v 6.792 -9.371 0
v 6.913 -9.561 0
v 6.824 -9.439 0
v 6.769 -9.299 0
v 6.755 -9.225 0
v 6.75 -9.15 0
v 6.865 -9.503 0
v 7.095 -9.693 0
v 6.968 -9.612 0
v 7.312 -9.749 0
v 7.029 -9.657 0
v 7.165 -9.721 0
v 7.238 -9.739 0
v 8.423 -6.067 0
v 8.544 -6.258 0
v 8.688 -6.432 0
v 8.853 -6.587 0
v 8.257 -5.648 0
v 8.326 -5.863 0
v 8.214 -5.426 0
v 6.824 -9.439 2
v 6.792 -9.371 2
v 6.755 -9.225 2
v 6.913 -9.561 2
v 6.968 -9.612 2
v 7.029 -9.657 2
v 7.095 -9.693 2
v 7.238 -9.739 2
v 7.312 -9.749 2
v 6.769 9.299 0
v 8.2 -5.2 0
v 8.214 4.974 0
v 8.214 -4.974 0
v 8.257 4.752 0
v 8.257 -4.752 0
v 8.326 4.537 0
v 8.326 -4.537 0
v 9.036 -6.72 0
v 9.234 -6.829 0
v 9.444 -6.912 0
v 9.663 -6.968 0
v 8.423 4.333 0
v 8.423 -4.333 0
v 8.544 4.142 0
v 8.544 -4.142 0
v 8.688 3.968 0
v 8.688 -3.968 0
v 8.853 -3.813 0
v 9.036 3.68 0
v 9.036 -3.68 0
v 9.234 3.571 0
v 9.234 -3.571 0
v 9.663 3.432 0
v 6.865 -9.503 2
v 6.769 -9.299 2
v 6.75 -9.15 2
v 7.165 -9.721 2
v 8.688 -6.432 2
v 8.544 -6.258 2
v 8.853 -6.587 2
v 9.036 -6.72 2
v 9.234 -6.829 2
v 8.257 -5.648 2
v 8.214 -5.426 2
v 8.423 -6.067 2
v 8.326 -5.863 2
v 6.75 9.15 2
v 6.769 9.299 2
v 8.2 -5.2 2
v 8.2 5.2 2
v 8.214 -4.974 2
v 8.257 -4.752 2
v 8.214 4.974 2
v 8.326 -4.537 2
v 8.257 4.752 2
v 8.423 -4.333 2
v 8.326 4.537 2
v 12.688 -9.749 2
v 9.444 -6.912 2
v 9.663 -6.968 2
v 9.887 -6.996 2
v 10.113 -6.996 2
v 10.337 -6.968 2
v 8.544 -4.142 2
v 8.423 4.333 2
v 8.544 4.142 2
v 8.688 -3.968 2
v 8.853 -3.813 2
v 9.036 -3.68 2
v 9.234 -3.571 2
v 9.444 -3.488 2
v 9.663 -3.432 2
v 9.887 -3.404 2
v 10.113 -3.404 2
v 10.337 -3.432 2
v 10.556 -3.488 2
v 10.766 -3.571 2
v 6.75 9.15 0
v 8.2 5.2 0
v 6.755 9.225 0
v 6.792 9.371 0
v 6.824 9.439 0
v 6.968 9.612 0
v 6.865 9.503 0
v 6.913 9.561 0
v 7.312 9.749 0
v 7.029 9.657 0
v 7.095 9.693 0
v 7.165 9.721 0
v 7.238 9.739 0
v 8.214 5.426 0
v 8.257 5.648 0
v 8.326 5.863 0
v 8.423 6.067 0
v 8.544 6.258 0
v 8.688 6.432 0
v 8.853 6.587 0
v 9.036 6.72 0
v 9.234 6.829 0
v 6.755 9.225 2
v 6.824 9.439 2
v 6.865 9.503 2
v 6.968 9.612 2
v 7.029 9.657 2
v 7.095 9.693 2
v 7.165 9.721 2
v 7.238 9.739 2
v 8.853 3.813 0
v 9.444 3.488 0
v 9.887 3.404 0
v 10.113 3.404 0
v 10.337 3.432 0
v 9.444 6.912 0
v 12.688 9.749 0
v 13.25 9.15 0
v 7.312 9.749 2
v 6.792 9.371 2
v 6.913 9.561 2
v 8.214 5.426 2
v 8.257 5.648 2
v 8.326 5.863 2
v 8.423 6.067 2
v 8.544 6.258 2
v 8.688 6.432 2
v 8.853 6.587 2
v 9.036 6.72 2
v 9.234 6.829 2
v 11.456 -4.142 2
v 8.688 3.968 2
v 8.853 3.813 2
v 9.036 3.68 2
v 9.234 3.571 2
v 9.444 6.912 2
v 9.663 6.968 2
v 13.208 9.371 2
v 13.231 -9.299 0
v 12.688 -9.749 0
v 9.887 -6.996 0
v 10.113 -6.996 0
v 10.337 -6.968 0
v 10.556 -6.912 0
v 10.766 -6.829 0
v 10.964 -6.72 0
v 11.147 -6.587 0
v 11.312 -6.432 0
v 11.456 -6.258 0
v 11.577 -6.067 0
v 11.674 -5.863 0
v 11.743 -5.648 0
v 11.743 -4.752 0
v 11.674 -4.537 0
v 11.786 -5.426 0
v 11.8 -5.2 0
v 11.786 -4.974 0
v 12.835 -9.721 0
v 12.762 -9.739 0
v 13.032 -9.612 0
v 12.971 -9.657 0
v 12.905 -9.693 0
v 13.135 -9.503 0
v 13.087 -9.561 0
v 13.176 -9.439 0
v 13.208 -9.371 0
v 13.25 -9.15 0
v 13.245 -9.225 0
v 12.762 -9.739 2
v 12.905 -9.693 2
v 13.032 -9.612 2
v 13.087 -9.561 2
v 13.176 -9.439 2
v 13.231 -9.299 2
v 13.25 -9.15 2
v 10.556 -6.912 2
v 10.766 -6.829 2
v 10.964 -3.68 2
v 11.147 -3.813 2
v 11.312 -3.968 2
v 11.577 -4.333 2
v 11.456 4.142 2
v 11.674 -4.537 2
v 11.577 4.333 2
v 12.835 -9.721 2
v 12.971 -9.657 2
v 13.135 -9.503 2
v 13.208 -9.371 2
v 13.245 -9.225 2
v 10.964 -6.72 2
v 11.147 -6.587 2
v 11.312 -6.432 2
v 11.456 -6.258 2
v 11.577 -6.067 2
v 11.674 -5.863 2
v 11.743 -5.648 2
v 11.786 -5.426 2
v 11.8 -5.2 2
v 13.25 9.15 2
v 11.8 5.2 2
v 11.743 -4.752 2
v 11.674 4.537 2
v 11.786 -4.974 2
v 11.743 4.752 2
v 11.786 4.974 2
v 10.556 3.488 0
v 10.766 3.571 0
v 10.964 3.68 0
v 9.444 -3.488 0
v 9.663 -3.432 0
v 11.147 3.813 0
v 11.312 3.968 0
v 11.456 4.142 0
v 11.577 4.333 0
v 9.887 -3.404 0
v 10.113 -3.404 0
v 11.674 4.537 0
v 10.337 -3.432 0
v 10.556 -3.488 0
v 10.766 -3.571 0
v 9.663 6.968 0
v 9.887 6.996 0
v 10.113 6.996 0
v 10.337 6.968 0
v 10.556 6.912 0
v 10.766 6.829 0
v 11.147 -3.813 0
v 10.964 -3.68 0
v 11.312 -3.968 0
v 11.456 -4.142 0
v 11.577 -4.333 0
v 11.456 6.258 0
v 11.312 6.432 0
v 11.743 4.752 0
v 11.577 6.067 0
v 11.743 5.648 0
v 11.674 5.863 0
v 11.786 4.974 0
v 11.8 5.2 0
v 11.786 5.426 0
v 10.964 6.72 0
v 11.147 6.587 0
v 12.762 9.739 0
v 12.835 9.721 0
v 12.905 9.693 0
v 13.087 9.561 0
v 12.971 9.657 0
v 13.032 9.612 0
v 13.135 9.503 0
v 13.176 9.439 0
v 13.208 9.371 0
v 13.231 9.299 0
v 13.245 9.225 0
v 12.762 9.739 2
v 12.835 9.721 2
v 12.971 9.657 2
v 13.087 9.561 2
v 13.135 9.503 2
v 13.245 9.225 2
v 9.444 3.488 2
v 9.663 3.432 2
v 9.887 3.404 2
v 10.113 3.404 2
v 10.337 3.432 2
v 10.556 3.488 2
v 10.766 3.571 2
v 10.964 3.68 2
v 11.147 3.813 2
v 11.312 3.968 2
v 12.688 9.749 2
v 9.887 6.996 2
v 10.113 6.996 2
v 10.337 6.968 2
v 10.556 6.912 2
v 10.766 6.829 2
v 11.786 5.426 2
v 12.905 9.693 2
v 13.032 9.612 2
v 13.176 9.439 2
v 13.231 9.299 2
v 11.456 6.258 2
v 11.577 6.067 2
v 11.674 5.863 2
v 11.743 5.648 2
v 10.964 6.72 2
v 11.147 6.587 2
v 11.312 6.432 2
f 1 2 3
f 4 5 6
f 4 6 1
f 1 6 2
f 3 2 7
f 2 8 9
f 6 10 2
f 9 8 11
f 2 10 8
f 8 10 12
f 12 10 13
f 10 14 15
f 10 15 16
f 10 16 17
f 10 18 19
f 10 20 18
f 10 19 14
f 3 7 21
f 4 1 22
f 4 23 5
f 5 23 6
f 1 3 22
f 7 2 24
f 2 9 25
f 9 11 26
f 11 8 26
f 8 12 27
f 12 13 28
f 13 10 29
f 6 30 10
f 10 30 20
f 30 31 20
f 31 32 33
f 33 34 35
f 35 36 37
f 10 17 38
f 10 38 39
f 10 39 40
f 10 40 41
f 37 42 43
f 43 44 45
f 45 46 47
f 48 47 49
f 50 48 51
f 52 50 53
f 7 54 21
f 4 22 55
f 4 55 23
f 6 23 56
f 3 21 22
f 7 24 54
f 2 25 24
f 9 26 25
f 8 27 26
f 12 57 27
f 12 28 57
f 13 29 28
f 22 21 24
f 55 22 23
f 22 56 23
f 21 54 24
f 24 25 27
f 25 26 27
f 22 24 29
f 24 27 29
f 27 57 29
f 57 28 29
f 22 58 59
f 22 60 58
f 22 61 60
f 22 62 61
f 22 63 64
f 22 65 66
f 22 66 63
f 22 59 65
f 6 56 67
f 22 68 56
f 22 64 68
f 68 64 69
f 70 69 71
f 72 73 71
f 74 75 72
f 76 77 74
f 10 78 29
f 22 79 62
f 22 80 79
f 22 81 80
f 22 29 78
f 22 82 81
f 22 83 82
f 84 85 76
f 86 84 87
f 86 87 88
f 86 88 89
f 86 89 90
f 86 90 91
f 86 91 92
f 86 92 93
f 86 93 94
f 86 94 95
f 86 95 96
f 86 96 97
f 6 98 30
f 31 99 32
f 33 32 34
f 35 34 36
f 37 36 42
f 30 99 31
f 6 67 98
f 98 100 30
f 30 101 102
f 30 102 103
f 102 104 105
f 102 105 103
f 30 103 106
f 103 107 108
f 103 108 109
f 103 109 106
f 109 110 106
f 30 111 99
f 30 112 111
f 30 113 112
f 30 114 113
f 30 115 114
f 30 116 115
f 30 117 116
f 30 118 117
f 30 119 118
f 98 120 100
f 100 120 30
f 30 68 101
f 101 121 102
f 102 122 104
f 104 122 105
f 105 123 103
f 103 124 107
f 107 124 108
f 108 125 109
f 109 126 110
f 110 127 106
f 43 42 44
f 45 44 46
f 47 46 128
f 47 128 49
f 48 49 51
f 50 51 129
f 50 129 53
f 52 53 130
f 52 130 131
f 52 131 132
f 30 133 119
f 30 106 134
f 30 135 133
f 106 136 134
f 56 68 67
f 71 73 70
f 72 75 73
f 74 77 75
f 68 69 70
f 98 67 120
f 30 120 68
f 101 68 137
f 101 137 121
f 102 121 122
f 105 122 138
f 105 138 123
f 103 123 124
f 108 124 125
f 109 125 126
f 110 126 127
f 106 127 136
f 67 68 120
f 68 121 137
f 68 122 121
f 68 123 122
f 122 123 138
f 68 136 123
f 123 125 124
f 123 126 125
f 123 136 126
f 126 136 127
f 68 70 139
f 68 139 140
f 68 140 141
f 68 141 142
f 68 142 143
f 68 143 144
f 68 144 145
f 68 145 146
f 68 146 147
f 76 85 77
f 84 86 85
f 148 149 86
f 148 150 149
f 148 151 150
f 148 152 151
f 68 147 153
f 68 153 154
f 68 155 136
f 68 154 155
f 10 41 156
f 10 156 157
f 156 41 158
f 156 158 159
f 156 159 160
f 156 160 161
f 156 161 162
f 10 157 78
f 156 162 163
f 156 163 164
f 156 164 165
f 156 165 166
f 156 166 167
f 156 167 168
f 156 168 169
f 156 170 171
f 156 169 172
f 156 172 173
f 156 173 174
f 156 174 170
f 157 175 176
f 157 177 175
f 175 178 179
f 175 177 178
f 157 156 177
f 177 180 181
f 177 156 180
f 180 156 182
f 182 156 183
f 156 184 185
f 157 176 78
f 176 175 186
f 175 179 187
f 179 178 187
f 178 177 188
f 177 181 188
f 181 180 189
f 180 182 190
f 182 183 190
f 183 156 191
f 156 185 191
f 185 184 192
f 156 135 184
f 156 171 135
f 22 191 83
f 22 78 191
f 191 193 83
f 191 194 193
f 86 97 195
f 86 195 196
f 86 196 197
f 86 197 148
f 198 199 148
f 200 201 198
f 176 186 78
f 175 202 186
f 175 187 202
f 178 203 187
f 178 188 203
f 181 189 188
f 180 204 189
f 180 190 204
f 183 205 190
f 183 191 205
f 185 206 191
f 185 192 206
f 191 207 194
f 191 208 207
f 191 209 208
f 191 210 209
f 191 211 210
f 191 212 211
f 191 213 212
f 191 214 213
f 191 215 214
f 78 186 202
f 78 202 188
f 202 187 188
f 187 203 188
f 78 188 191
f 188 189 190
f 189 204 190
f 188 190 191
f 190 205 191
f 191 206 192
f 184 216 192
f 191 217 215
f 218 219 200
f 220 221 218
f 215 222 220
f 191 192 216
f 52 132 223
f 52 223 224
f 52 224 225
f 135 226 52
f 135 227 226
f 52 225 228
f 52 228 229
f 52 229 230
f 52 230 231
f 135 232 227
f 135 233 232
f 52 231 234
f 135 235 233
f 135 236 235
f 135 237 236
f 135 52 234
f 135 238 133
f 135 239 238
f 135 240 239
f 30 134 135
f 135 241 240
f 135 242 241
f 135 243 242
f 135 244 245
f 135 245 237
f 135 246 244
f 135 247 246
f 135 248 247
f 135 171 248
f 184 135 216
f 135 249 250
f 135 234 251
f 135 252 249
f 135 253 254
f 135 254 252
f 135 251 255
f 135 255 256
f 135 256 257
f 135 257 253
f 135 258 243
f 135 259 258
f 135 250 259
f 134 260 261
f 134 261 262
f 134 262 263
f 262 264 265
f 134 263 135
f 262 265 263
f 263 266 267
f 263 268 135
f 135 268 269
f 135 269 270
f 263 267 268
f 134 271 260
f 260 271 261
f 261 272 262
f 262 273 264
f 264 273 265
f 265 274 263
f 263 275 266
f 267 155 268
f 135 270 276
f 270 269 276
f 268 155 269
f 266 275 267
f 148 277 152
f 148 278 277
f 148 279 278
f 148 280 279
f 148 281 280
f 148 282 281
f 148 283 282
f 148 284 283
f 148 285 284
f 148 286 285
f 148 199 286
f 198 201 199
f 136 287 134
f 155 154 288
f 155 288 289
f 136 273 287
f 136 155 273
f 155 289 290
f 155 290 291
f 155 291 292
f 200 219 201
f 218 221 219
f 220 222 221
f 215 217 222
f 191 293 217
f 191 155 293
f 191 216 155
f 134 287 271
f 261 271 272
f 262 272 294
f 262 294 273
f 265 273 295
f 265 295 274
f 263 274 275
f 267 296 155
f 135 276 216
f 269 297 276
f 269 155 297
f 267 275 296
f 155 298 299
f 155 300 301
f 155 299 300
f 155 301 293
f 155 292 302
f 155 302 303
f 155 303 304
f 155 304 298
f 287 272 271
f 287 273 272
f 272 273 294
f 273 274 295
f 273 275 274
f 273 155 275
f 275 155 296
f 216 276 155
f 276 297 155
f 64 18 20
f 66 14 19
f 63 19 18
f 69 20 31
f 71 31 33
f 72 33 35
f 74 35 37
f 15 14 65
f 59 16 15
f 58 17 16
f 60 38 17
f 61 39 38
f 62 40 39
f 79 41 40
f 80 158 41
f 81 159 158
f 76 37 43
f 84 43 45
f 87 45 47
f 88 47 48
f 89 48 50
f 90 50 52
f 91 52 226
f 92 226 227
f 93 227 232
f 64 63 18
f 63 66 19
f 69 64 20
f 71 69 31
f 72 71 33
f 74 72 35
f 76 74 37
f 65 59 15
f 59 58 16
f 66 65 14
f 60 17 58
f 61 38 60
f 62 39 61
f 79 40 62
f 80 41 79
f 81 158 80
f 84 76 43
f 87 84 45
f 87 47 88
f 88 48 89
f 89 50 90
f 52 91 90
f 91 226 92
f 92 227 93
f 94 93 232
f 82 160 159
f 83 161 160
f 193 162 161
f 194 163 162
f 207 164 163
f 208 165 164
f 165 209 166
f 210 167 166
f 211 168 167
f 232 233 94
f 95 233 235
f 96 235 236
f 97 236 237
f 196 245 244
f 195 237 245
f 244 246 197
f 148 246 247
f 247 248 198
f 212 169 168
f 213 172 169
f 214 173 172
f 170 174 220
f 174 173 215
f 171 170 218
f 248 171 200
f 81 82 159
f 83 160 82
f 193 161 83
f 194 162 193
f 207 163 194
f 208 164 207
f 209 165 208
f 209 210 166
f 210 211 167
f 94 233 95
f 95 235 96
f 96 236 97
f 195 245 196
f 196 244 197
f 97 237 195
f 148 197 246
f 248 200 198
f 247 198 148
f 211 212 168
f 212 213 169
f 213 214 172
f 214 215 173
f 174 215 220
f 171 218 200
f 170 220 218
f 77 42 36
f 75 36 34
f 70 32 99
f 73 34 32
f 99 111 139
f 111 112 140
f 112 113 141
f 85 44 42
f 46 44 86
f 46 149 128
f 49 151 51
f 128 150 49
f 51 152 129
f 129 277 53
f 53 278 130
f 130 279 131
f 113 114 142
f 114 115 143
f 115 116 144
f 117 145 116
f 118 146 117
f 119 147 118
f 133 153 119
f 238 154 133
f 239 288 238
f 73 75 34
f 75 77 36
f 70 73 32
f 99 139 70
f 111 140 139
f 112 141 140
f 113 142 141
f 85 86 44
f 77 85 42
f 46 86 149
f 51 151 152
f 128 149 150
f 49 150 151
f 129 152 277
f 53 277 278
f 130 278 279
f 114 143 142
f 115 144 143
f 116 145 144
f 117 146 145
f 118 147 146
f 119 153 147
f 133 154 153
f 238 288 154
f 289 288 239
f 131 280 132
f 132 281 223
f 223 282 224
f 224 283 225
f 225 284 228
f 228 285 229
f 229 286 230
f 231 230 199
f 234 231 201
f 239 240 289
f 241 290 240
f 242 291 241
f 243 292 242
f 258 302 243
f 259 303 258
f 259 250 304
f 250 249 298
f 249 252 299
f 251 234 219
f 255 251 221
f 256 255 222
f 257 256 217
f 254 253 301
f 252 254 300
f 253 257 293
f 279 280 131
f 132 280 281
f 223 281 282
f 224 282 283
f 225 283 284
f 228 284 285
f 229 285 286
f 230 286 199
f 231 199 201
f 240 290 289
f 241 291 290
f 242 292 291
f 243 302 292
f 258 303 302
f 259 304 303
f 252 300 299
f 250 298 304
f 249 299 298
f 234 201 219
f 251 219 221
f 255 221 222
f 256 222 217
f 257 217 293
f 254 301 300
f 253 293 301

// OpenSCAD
$fn = 50;

difference() {
	union() {
		translate(v = [-4.5, 0, 2]) {
			rotate(a = [0, 0, 0]) {
				difference() {
					union() {
						translate(v = [14.5, 0, -2]) {
							hull() {
								translate(v = [-2.65, 9.15, 0]) {
									cylinder(h = 2, r = 0.6);
								}
								translate(v = [2.65, 9.15, 0]) {
									cylinder(h = 2, r = 0.6);
								}
								translate(v = [-2.65, -9.15, 0]) {
									cylinder(h = 2, r = 0.6);
								}
								translate(v = [2.65, -9.15, 0]) {
									cylinder(h = 2, r = 0.6);
								}
							}
						}
					}
					union() {
						translate(v = [14.5, -5.2, -3]) {
							cylinder(h = 4, r = 1.8);
						}
						translate(v = [14.5, 5.2, -3]) {
							cylinder(h = 4, r = 1.8);
						}
					}
				}
			}
		}
	}
	union();
}
